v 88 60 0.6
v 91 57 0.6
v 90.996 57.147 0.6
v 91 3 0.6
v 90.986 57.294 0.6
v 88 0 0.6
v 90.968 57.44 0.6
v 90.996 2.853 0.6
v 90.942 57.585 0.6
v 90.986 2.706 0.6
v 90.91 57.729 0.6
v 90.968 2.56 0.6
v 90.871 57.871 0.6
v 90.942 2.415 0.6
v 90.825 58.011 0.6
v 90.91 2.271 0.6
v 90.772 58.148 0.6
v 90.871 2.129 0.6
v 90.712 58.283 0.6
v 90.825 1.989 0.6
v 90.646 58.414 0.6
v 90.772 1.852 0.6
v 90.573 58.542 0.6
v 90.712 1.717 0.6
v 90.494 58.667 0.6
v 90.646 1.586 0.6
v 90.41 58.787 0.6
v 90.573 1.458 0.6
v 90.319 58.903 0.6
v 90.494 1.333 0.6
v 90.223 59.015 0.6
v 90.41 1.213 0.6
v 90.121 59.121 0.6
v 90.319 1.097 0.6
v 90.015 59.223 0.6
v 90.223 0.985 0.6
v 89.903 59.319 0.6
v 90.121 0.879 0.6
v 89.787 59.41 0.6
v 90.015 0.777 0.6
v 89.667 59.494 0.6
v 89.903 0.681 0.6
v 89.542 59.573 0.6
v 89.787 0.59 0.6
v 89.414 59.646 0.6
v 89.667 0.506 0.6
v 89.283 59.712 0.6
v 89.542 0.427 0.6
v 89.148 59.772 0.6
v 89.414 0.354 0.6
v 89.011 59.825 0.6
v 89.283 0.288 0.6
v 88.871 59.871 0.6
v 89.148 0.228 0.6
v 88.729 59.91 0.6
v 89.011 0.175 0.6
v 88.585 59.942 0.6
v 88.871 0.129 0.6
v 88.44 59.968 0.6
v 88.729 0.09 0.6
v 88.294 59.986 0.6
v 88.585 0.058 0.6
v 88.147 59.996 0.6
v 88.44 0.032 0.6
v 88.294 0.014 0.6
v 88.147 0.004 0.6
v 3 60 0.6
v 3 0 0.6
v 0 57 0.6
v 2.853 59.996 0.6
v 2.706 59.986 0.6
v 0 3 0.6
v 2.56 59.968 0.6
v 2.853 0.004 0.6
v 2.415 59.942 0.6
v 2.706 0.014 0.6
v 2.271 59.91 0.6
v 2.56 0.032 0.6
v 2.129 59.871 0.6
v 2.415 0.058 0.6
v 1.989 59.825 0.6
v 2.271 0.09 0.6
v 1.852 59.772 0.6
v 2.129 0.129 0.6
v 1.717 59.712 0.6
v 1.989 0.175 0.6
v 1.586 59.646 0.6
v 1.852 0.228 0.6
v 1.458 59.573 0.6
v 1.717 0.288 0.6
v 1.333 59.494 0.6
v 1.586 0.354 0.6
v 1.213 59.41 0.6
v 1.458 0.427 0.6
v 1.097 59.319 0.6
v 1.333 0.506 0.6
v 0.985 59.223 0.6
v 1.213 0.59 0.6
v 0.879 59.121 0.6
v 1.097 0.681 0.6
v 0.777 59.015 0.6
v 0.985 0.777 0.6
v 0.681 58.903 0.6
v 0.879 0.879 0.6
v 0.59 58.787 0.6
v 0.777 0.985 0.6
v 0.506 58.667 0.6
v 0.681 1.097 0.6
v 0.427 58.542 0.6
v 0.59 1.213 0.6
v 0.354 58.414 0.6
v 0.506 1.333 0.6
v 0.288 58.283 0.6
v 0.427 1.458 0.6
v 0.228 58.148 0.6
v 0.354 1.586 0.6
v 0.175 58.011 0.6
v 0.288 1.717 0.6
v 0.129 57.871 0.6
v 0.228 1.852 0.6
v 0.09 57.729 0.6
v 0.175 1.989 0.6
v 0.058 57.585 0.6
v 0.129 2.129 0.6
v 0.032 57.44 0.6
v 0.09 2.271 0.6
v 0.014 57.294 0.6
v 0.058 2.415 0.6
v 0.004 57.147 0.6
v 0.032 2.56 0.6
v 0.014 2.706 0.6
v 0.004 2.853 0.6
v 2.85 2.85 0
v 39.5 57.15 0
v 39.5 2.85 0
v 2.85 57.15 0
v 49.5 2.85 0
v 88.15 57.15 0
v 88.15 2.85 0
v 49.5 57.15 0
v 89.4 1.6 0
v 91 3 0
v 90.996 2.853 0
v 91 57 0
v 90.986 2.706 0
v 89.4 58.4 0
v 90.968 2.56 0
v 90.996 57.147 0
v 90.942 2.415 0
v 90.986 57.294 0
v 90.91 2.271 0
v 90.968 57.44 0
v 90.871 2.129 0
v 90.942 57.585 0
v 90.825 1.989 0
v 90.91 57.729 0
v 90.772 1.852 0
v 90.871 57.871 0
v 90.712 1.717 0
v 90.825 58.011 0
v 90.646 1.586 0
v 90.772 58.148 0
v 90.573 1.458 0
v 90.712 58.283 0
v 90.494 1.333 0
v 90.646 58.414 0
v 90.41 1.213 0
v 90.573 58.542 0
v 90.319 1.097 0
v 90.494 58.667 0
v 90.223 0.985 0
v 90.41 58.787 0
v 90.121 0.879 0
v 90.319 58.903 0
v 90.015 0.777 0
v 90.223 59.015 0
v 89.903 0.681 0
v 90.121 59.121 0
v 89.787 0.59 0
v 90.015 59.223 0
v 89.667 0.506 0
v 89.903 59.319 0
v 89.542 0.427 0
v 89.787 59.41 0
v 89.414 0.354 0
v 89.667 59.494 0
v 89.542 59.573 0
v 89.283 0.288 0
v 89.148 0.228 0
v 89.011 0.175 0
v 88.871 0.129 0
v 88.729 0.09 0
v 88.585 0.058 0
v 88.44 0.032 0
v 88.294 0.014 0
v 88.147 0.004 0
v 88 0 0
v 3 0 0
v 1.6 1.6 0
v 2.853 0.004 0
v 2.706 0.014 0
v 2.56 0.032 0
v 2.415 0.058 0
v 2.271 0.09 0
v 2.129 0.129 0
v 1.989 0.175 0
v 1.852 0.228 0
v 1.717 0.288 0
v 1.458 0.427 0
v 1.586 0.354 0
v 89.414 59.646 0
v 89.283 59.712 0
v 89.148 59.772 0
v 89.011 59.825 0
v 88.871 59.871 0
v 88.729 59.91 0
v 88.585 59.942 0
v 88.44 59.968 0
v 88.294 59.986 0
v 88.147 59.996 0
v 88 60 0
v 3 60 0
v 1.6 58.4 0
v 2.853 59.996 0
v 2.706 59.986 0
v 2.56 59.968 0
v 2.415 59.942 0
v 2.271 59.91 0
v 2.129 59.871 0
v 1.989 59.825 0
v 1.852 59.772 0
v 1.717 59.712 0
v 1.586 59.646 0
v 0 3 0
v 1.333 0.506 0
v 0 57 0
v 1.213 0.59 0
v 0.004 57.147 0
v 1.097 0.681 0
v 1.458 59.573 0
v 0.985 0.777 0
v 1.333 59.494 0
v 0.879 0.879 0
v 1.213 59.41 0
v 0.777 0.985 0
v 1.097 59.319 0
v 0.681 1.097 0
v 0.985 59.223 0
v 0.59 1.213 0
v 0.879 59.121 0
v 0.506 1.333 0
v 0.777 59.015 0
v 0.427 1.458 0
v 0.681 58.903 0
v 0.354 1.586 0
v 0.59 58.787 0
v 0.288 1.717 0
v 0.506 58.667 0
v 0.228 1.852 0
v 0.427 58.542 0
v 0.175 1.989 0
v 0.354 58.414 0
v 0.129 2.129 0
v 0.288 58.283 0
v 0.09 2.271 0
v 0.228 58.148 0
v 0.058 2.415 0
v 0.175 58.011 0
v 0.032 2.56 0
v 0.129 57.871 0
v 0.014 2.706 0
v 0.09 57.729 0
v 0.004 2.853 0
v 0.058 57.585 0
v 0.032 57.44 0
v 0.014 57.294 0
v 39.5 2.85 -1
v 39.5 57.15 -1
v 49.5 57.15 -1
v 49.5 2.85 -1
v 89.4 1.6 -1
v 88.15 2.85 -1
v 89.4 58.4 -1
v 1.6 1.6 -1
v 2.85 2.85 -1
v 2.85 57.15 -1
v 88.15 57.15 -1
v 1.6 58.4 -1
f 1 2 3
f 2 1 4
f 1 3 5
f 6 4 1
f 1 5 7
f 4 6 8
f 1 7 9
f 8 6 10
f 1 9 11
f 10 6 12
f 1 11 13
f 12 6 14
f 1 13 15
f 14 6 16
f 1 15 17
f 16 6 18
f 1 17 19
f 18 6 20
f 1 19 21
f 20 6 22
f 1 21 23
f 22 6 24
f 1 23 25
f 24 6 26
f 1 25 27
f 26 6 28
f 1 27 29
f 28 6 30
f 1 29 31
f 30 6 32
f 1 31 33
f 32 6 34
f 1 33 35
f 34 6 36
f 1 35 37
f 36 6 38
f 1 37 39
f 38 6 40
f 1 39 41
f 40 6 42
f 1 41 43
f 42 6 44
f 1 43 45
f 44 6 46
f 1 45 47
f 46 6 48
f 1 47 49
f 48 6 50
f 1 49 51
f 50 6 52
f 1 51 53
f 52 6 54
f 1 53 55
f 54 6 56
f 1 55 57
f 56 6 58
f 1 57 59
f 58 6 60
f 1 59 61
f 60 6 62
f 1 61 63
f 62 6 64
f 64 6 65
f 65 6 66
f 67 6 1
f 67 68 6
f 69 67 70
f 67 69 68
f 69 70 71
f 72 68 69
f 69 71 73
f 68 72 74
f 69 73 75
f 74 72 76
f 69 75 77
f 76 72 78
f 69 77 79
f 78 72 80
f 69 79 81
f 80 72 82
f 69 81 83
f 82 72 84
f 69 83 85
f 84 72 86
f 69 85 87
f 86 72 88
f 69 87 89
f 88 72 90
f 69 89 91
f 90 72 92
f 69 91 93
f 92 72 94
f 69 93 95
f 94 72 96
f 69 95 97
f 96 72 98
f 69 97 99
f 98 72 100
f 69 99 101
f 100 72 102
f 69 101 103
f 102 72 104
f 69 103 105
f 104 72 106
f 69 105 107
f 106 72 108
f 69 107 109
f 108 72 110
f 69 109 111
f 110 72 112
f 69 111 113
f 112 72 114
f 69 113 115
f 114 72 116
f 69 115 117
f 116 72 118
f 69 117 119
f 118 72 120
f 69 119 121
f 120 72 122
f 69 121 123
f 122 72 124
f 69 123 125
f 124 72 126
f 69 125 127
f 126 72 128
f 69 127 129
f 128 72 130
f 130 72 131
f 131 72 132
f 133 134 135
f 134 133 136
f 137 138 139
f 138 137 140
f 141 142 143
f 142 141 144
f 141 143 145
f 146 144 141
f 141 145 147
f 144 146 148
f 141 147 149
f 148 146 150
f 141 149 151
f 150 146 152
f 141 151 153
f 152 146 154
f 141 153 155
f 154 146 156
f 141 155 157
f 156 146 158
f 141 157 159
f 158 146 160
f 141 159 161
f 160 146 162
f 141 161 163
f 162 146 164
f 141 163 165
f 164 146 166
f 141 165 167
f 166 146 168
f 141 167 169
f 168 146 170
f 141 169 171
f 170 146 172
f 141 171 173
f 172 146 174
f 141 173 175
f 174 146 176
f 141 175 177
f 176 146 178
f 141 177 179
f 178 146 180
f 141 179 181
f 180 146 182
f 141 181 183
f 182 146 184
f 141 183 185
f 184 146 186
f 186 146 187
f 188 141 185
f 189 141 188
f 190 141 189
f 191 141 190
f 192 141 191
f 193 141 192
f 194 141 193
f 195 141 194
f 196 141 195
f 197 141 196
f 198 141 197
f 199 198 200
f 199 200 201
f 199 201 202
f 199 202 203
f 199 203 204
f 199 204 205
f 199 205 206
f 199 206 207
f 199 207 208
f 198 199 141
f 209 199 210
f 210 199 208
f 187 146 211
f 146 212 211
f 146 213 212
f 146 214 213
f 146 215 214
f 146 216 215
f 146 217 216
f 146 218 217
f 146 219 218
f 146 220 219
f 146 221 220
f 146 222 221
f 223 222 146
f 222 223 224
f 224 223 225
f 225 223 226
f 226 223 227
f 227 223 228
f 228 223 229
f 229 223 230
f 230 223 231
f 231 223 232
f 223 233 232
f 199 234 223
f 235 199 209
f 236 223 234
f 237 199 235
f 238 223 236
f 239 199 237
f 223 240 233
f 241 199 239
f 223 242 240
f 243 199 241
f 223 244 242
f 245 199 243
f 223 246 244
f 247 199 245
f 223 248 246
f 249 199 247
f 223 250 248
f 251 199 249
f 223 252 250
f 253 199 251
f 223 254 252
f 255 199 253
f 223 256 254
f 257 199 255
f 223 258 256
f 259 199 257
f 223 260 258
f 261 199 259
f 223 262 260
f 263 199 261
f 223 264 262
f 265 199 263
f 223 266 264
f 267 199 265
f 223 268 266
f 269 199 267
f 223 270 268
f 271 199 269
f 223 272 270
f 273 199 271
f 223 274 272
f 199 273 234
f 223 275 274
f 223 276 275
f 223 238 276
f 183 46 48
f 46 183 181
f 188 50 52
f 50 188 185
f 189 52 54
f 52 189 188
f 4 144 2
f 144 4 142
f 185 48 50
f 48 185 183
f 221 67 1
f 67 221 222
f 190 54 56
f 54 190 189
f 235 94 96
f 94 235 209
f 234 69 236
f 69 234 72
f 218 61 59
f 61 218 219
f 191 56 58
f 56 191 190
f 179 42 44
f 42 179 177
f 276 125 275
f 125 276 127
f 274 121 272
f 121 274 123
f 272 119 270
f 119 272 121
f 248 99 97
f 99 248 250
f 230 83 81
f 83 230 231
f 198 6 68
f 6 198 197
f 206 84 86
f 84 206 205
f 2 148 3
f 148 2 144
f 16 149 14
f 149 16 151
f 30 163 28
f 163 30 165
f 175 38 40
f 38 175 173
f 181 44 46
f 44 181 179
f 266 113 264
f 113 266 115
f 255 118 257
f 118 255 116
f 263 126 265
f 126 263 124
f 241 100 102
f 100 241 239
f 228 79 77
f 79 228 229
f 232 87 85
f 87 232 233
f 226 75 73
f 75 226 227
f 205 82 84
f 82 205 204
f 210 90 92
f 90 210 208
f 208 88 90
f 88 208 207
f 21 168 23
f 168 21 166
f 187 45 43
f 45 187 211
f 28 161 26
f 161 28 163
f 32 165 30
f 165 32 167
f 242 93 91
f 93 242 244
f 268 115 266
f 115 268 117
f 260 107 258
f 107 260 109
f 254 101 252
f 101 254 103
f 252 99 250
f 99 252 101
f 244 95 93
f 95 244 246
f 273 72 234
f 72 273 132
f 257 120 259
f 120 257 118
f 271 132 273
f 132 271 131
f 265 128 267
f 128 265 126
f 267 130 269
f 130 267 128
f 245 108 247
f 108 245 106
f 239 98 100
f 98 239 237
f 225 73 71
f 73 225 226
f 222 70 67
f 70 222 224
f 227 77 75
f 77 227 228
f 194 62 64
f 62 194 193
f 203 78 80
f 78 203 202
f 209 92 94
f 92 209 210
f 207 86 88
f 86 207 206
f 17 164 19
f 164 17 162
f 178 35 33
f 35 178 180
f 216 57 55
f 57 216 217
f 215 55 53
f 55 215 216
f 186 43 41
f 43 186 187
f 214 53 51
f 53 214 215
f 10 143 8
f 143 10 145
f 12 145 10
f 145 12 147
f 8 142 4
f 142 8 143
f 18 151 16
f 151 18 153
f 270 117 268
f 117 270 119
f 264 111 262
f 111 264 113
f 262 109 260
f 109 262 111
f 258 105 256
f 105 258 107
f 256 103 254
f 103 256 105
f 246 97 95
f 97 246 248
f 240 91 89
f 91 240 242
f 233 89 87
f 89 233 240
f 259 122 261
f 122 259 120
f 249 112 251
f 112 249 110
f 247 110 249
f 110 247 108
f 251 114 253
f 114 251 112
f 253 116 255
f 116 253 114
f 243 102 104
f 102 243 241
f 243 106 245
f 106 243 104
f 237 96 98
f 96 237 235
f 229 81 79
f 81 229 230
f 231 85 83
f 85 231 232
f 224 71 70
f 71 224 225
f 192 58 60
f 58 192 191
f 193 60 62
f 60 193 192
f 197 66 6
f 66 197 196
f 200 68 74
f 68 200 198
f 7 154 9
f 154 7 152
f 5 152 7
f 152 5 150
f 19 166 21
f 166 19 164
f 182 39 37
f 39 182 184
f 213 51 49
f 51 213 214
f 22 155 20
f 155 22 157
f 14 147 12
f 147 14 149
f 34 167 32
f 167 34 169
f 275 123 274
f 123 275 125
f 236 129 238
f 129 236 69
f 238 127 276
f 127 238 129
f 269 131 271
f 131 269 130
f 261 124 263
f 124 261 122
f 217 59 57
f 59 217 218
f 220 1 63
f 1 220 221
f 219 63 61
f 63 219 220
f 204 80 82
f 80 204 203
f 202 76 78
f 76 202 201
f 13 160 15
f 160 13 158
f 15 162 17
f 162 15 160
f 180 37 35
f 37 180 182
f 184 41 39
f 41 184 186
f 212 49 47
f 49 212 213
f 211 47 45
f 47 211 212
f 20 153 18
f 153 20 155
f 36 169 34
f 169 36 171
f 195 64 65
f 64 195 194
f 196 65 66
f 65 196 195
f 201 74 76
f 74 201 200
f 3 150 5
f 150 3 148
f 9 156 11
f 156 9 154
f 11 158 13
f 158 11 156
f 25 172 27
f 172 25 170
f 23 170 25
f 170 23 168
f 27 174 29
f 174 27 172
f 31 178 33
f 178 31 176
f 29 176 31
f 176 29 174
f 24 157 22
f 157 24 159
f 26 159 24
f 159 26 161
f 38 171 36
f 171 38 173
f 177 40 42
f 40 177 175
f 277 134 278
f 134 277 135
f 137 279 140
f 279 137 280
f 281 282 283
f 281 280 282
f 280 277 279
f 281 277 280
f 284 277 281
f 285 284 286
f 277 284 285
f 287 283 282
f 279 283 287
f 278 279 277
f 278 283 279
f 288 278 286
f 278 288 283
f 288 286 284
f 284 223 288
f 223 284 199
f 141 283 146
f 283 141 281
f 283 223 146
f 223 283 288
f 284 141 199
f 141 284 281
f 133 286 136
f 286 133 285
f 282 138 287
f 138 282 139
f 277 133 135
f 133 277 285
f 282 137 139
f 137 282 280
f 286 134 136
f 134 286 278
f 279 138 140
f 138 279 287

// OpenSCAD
// TinyRAD Galaxy S24 Enclosure
// Rev P Lid
// Antenna window pockets with full-perimeter retention

$fn=128;

pcb_x=85;
pcb_y=54;

clearance=1.5;
wall=1.5;
corner_r=3;

outer_x=pcb_x + 2*(wall+clearance);
outer_y=pcb_y + 2*(wall+clearance);

module rounded2d(x,y,r)
{
    offset(r=r)
    offset(delta=-r)
    square([x,y]);
}

module window_frame(xpos)
{
    // Pocket frame
    translate([xpos-1.0, wall+clearance+4.0, 0])
    difference()
    {
        cube([32.0,45.0,0.6]);

        translate([0.1,0.1,-0.1])
            cube([31.8,44.8,0.8]);
    }
}

module lid()
{
    union()
    {
        difference()
        {
            linear_extrude(0.6)
                rounded2d(outer_x,outer_y,corner_r);

            // LEFT antenna aperture
            // translate([
            //     wall+clearance+3,
            //     wall+clearance+5,
            //     -1
            // ])
            // cube([30,43,6]);

            // RIGHT antenna aperture
            // translate([
            //     outer_x-(wall+clearance+3)-30,
            //     wall+clearance+5,
            //     -1
            // ])
            // cube([30,43,6]);
        }

        // Left antenna pocket
        window_frame(
            wall+clearance+3
        );

        // Right antenna pocket
        window_frame(
            outer_x-(wall+clearance+3)-30
        );

        // Reinforcement rib
        translate([outer_x/2-6,2,-1])
            cube([10,outer_y-4,1.6]);
    }

    // Snap tongue
    translate([1.6,1.6,-1.0])
    difference()
    {
        cube([outer_x-3.2,outer_y-3.2,1.0]);

        translate([1.25,1.25,-0.1])
            cube([outer_x-5.7,outer_y-5.7,1.2]);
    }
}

lid();
